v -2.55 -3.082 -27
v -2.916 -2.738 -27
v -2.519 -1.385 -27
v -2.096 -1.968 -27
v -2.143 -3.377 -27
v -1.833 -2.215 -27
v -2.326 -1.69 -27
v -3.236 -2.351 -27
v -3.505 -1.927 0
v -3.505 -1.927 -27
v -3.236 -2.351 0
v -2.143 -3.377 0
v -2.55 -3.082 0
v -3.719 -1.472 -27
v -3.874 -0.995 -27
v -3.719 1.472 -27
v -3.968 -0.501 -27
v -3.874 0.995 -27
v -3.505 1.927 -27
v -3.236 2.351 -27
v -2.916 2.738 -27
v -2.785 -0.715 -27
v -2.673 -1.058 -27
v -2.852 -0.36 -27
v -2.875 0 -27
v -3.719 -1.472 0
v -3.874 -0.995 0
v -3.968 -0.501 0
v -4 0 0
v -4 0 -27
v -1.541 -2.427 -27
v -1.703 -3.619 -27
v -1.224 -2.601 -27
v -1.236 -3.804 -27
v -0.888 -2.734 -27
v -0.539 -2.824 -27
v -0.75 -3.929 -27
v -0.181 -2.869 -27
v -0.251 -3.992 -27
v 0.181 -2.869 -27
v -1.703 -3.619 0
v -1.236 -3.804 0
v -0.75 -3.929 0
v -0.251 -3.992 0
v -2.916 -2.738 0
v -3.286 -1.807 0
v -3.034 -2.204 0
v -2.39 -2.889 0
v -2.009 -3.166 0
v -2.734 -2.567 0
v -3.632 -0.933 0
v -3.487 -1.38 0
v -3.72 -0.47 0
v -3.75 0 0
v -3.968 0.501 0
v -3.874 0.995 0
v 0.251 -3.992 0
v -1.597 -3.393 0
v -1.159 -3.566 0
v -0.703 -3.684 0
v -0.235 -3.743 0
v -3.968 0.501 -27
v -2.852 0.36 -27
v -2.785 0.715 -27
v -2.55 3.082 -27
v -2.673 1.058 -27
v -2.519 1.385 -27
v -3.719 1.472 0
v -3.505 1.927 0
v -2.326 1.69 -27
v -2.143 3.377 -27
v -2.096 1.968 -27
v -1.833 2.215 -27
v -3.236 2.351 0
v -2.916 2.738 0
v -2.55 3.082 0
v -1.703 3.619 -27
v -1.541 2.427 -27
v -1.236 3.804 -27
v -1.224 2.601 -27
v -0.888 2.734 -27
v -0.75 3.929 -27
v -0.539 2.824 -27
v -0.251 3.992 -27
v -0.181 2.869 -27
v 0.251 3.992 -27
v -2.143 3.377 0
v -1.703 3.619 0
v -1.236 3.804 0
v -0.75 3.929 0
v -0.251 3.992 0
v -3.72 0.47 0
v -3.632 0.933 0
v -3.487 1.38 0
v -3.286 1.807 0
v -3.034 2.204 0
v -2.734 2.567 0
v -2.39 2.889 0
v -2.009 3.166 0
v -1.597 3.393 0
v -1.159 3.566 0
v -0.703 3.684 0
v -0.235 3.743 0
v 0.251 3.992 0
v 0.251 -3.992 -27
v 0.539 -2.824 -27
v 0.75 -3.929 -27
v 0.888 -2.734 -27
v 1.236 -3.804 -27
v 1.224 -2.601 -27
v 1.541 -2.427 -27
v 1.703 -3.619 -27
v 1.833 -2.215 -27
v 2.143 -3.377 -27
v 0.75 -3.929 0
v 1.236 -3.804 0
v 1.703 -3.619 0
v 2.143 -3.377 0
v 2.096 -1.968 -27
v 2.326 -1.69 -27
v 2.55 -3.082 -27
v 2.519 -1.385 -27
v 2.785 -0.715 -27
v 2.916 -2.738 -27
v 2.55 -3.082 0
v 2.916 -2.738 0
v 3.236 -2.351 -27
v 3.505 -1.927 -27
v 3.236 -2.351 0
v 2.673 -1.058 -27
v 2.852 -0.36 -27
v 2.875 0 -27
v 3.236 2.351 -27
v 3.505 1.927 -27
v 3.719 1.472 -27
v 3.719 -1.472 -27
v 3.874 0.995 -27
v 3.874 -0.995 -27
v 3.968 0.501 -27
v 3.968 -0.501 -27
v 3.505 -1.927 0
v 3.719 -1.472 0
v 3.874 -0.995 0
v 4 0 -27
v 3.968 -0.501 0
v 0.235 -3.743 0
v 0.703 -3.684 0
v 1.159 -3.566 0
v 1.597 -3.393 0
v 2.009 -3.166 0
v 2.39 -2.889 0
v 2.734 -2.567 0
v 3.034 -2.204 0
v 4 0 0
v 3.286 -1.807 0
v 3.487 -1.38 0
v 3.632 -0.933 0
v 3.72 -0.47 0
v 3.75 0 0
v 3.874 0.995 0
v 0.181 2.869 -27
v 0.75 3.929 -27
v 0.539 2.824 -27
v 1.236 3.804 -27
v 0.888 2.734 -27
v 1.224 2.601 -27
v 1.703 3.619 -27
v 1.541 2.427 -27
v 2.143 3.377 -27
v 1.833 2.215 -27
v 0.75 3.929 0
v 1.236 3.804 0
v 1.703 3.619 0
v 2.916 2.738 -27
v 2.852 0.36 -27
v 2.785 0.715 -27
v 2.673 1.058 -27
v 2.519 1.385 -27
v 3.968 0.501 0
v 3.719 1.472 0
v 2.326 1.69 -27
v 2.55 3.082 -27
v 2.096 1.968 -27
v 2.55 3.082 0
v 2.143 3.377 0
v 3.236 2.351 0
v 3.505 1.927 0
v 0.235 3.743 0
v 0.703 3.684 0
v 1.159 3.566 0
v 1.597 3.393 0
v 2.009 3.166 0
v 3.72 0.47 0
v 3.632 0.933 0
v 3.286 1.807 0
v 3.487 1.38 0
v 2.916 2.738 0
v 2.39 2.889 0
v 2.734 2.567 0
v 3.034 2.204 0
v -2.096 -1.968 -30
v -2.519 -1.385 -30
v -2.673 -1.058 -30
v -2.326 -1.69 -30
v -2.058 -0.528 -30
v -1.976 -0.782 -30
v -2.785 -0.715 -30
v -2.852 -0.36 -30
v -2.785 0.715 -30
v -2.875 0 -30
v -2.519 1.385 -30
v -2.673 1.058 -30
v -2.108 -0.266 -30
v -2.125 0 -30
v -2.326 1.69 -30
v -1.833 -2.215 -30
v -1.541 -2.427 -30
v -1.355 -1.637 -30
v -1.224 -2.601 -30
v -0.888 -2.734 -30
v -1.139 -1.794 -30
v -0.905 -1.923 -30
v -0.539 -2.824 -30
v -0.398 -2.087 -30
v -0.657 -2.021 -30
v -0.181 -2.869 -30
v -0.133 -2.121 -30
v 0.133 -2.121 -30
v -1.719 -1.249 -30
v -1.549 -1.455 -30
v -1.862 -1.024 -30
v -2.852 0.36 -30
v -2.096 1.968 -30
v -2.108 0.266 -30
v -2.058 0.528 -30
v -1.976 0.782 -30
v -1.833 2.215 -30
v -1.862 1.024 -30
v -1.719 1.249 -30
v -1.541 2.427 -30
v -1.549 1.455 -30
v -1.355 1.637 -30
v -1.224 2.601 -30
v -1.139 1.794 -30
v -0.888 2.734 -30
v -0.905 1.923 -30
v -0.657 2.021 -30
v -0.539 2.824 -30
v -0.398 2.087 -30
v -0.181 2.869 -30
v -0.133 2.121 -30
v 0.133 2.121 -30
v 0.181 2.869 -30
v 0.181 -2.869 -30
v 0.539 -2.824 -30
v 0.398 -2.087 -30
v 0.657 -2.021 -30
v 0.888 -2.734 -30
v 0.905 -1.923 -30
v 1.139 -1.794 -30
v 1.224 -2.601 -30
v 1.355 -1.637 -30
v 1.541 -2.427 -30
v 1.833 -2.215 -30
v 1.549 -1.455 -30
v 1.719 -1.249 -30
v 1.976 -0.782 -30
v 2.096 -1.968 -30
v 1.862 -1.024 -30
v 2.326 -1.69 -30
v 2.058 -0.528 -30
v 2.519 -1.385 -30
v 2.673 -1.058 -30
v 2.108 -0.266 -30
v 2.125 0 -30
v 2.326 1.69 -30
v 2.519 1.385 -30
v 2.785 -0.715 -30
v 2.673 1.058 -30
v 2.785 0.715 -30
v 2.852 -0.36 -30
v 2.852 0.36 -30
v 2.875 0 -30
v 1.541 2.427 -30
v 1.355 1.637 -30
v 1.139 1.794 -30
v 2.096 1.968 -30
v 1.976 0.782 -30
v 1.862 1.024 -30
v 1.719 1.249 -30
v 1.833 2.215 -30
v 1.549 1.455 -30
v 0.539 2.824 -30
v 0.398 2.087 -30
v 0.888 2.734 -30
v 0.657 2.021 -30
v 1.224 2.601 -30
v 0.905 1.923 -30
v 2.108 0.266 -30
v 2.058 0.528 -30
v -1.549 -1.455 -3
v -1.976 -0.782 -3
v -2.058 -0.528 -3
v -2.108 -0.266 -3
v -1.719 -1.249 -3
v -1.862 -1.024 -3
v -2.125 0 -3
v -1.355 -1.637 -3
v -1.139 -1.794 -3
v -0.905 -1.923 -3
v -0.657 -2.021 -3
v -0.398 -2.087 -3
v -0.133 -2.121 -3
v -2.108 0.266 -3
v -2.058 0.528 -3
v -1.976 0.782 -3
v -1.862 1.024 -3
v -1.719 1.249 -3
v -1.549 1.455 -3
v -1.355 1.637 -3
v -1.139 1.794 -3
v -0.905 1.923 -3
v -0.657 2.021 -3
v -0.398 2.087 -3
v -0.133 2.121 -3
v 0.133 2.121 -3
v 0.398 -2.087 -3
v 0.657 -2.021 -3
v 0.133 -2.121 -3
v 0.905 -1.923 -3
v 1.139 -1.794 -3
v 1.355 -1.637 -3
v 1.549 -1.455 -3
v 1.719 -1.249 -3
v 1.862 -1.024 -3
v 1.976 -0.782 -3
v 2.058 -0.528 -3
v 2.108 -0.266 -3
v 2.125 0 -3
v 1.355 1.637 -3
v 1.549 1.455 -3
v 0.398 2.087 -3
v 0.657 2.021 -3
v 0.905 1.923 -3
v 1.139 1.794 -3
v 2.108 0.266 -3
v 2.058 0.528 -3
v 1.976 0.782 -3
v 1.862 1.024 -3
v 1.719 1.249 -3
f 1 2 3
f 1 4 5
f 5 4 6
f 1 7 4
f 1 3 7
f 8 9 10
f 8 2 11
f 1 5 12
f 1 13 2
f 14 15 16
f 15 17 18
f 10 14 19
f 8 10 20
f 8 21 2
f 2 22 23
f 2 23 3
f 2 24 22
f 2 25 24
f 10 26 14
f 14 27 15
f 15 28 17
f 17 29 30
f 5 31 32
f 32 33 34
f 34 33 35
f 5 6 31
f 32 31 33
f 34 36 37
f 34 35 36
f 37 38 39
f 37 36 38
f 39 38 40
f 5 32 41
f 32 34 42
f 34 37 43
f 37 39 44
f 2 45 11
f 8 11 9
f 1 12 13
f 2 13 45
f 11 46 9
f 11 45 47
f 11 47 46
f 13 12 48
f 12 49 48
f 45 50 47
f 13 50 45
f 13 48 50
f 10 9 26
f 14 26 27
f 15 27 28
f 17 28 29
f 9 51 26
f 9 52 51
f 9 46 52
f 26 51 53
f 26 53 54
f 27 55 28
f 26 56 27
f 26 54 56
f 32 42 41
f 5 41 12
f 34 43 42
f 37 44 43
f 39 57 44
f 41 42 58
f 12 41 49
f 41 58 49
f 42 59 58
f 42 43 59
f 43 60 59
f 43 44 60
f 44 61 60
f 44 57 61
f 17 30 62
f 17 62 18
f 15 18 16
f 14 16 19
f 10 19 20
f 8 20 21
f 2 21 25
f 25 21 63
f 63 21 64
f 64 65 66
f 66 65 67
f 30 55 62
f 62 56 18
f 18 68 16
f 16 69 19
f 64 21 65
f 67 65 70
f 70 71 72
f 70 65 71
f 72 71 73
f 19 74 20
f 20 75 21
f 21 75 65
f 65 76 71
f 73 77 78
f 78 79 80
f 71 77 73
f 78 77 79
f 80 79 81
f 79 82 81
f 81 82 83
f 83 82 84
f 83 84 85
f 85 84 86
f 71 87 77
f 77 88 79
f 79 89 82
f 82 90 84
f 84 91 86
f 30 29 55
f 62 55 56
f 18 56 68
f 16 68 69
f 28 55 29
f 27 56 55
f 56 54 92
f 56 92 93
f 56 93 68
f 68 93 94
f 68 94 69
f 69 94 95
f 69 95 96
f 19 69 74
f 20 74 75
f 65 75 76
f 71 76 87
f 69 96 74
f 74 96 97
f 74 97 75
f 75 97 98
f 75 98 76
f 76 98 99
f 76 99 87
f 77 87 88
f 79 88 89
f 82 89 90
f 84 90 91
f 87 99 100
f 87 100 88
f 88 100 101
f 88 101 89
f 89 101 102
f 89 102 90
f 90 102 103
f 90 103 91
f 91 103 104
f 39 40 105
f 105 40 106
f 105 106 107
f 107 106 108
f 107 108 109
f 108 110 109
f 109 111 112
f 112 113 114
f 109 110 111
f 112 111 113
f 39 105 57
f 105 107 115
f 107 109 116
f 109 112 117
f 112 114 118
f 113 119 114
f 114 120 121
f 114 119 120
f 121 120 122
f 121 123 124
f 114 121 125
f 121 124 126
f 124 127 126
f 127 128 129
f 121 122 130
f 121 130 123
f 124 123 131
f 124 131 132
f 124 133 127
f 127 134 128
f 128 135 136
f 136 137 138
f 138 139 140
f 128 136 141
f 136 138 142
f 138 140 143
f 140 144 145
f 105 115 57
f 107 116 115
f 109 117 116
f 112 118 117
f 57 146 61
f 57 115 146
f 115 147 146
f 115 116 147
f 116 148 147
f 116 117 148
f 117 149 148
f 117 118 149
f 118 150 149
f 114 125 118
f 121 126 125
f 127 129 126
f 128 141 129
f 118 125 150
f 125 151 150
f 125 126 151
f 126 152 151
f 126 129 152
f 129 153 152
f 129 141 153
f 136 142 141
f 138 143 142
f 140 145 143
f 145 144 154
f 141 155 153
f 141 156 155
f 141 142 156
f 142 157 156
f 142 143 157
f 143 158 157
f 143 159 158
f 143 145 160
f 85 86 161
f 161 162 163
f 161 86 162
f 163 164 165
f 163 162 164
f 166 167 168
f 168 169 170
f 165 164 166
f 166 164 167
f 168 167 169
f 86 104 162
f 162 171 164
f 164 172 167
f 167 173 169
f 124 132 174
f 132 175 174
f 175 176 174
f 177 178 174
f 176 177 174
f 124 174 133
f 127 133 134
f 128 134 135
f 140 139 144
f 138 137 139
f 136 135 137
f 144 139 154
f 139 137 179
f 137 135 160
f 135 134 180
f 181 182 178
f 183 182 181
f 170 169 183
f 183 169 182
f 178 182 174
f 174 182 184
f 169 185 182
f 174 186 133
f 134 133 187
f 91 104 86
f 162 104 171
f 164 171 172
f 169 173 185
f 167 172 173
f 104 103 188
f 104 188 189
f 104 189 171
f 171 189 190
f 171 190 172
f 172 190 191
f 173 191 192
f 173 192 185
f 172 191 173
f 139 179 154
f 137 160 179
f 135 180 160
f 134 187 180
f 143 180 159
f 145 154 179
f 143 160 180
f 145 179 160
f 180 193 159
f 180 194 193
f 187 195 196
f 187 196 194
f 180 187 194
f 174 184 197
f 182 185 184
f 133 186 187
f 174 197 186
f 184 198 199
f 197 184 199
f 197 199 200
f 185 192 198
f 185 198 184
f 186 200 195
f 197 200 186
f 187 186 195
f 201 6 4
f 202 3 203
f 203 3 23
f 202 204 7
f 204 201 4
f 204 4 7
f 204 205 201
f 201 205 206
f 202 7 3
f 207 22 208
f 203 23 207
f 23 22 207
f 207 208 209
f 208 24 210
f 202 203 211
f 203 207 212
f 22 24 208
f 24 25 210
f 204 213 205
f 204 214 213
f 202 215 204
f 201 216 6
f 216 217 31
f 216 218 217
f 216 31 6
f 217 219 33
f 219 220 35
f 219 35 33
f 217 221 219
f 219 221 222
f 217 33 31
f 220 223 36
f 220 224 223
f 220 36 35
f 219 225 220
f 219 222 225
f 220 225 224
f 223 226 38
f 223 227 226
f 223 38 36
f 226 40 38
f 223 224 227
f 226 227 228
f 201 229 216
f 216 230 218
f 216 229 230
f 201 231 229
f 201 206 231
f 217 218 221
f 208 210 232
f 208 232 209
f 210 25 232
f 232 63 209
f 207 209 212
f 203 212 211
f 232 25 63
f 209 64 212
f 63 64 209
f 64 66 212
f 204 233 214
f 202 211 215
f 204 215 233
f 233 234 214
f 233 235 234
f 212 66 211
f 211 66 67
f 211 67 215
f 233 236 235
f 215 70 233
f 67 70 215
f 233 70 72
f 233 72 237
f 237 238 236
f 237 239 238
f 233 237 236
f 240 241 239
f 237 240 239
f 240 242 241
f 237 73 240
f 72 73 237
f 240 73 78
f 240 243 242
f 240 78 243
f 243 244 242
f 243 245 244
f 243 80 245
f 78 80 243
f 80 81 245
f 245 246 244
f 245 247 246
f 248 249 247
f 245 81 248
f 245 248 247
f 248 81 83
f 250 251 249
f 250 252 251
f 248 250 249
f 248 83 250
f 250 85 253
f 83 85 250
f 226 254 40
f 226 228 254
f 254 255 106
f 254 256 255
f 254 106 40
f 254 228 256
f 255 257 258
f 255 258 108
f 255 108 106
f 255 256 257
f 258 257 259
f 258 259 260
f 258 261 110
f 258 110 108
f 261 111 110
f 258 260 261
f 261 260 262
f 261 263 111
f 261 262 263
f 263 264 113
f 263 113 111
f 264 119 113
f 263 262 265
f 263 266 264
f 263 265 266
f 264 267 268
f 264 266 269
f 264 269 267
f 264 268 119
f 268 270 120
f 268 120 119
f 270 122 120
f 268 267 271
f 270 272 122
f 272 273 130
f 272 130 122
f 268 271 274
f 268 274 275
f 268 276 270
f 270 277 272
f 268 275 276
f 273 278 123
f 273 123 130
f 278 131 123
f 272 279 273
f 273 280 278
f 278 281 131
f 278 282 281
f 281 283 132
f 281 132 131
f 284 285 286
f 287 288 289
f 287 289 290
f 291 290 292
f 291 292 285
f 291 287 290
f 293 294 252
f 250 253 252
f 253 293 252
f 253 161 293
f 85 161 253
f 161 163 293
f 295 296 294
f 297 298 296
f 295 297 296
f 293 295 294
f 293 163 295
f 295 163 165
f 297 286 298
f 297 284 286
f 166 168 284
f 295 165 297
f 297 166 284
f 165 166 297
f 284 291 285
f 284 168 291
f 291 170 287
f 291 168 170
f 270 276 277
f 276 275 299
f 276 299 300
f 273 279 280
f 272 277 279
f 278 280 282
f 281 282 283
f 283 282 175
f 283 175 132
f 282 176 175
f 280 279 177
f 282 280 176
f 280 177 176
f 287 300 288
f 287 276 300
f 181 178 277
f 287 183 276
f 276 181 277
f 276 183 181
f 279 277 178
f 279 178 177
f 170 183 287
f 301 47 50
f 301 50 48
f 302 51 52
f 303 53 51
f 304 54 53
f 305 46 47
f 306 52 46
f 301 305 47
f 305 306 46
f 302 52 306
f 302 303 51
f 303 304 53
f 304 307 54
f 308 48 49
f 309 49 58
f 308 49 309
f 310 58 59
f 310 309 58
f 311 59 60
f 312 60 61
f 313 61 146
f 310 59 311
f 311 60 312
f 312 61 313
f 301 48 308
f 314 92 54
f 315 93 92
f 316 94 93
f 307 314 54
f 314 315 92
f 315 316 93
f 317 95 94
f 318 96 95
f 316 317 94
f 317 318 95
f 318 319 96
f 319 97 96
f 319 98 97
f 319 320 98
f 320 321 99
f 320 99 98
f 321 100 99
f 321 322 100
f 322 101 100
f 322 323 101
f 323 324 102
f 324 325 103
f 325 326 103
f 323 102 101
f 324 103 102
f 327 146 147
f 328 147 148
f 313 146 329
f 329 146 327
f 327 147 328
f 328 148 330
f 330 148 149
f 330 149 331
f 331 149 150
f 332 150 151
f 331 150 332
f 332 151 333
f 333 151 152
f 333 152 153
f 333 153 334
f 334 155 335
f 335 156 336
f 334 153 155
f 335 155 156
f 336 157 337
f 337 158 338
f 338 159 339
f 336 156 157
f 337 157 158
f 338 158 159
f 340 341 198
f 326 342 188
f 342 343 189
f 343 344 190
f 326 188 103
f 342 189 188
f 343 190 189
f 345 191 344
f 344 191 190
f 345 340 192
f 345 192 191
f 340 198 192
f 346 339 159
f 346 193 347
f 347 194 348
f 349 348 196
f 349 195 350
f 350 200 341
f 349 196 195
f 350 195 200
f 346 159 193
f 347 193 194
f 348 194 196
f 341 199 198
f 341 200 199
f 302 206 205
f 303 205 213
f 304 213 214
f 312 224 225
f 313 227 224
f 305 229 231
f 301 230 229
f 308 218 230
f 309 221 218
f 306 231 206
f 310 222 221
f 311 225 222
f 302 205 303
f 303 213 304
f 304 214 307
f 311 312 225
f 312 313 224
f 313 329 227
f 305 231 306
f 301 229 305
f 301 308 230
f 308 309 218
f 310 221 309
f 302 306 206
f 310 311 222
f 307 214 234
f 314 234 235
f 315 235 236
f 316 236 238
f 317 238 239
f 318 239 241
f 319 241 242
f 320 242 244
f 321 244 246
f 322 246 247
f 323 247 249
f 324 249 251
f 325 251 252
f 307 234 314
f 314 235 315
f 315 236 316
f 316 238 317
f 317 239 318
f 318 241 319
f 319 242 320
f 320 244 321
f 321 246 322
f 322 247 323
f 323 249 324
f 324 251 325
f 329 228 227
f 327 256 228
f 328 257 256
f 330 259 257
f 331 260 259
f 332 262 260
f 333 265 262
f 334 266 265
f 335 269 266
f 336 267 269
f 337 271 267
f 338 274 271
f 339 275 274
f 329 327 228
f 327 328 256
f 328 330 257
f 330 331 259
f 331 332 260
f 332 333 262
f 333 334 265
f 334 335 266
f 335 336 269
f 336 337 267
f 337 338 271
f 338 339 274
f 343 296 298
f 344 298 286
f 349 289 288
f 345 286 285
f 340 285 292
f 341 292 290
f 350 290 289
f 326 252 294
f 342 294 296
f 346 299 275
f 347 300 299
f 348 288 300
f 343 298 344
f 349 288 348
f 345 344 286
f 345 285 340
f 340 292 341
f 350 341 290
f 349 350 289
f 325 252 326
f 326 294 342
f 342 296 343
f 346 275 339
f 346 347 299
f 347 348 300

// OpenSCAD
$fn = 50;

difference() {
	union() {
		translate(v = [0, 0, -27.0]) {
			cylinder(h = 30, r = 4.0);
		}
		#translate(v = [0, 0, -30.0]) {
			cylinder(h = 30, r = 2.875);
		}
	}
	union() {
		translate(v = [0, 0, 0]) {
			rotate(a = [0, 0, 0]) {
				difference() {
					union() {
						translate(v = [0, 0, -30.0]) {
							cylinder(h = 30, r = 2.0);
						}
						translate(v = [0, 0, -3]) {
							cylinder(h = 3, r1 = 2.125, r2 = 3.75);
						}
						translate(v = [0, 0, -30.0]) {
							cylinder(h = 30, r = 2.125);
						}
						translate(v = [0, 0, -30.0]) {
							cylinder(h = 30, r = 2.0);
						}
					}
					union();
				}
			}
		}
		#cylinder(h = 3, r = 5.0);
	}
}
